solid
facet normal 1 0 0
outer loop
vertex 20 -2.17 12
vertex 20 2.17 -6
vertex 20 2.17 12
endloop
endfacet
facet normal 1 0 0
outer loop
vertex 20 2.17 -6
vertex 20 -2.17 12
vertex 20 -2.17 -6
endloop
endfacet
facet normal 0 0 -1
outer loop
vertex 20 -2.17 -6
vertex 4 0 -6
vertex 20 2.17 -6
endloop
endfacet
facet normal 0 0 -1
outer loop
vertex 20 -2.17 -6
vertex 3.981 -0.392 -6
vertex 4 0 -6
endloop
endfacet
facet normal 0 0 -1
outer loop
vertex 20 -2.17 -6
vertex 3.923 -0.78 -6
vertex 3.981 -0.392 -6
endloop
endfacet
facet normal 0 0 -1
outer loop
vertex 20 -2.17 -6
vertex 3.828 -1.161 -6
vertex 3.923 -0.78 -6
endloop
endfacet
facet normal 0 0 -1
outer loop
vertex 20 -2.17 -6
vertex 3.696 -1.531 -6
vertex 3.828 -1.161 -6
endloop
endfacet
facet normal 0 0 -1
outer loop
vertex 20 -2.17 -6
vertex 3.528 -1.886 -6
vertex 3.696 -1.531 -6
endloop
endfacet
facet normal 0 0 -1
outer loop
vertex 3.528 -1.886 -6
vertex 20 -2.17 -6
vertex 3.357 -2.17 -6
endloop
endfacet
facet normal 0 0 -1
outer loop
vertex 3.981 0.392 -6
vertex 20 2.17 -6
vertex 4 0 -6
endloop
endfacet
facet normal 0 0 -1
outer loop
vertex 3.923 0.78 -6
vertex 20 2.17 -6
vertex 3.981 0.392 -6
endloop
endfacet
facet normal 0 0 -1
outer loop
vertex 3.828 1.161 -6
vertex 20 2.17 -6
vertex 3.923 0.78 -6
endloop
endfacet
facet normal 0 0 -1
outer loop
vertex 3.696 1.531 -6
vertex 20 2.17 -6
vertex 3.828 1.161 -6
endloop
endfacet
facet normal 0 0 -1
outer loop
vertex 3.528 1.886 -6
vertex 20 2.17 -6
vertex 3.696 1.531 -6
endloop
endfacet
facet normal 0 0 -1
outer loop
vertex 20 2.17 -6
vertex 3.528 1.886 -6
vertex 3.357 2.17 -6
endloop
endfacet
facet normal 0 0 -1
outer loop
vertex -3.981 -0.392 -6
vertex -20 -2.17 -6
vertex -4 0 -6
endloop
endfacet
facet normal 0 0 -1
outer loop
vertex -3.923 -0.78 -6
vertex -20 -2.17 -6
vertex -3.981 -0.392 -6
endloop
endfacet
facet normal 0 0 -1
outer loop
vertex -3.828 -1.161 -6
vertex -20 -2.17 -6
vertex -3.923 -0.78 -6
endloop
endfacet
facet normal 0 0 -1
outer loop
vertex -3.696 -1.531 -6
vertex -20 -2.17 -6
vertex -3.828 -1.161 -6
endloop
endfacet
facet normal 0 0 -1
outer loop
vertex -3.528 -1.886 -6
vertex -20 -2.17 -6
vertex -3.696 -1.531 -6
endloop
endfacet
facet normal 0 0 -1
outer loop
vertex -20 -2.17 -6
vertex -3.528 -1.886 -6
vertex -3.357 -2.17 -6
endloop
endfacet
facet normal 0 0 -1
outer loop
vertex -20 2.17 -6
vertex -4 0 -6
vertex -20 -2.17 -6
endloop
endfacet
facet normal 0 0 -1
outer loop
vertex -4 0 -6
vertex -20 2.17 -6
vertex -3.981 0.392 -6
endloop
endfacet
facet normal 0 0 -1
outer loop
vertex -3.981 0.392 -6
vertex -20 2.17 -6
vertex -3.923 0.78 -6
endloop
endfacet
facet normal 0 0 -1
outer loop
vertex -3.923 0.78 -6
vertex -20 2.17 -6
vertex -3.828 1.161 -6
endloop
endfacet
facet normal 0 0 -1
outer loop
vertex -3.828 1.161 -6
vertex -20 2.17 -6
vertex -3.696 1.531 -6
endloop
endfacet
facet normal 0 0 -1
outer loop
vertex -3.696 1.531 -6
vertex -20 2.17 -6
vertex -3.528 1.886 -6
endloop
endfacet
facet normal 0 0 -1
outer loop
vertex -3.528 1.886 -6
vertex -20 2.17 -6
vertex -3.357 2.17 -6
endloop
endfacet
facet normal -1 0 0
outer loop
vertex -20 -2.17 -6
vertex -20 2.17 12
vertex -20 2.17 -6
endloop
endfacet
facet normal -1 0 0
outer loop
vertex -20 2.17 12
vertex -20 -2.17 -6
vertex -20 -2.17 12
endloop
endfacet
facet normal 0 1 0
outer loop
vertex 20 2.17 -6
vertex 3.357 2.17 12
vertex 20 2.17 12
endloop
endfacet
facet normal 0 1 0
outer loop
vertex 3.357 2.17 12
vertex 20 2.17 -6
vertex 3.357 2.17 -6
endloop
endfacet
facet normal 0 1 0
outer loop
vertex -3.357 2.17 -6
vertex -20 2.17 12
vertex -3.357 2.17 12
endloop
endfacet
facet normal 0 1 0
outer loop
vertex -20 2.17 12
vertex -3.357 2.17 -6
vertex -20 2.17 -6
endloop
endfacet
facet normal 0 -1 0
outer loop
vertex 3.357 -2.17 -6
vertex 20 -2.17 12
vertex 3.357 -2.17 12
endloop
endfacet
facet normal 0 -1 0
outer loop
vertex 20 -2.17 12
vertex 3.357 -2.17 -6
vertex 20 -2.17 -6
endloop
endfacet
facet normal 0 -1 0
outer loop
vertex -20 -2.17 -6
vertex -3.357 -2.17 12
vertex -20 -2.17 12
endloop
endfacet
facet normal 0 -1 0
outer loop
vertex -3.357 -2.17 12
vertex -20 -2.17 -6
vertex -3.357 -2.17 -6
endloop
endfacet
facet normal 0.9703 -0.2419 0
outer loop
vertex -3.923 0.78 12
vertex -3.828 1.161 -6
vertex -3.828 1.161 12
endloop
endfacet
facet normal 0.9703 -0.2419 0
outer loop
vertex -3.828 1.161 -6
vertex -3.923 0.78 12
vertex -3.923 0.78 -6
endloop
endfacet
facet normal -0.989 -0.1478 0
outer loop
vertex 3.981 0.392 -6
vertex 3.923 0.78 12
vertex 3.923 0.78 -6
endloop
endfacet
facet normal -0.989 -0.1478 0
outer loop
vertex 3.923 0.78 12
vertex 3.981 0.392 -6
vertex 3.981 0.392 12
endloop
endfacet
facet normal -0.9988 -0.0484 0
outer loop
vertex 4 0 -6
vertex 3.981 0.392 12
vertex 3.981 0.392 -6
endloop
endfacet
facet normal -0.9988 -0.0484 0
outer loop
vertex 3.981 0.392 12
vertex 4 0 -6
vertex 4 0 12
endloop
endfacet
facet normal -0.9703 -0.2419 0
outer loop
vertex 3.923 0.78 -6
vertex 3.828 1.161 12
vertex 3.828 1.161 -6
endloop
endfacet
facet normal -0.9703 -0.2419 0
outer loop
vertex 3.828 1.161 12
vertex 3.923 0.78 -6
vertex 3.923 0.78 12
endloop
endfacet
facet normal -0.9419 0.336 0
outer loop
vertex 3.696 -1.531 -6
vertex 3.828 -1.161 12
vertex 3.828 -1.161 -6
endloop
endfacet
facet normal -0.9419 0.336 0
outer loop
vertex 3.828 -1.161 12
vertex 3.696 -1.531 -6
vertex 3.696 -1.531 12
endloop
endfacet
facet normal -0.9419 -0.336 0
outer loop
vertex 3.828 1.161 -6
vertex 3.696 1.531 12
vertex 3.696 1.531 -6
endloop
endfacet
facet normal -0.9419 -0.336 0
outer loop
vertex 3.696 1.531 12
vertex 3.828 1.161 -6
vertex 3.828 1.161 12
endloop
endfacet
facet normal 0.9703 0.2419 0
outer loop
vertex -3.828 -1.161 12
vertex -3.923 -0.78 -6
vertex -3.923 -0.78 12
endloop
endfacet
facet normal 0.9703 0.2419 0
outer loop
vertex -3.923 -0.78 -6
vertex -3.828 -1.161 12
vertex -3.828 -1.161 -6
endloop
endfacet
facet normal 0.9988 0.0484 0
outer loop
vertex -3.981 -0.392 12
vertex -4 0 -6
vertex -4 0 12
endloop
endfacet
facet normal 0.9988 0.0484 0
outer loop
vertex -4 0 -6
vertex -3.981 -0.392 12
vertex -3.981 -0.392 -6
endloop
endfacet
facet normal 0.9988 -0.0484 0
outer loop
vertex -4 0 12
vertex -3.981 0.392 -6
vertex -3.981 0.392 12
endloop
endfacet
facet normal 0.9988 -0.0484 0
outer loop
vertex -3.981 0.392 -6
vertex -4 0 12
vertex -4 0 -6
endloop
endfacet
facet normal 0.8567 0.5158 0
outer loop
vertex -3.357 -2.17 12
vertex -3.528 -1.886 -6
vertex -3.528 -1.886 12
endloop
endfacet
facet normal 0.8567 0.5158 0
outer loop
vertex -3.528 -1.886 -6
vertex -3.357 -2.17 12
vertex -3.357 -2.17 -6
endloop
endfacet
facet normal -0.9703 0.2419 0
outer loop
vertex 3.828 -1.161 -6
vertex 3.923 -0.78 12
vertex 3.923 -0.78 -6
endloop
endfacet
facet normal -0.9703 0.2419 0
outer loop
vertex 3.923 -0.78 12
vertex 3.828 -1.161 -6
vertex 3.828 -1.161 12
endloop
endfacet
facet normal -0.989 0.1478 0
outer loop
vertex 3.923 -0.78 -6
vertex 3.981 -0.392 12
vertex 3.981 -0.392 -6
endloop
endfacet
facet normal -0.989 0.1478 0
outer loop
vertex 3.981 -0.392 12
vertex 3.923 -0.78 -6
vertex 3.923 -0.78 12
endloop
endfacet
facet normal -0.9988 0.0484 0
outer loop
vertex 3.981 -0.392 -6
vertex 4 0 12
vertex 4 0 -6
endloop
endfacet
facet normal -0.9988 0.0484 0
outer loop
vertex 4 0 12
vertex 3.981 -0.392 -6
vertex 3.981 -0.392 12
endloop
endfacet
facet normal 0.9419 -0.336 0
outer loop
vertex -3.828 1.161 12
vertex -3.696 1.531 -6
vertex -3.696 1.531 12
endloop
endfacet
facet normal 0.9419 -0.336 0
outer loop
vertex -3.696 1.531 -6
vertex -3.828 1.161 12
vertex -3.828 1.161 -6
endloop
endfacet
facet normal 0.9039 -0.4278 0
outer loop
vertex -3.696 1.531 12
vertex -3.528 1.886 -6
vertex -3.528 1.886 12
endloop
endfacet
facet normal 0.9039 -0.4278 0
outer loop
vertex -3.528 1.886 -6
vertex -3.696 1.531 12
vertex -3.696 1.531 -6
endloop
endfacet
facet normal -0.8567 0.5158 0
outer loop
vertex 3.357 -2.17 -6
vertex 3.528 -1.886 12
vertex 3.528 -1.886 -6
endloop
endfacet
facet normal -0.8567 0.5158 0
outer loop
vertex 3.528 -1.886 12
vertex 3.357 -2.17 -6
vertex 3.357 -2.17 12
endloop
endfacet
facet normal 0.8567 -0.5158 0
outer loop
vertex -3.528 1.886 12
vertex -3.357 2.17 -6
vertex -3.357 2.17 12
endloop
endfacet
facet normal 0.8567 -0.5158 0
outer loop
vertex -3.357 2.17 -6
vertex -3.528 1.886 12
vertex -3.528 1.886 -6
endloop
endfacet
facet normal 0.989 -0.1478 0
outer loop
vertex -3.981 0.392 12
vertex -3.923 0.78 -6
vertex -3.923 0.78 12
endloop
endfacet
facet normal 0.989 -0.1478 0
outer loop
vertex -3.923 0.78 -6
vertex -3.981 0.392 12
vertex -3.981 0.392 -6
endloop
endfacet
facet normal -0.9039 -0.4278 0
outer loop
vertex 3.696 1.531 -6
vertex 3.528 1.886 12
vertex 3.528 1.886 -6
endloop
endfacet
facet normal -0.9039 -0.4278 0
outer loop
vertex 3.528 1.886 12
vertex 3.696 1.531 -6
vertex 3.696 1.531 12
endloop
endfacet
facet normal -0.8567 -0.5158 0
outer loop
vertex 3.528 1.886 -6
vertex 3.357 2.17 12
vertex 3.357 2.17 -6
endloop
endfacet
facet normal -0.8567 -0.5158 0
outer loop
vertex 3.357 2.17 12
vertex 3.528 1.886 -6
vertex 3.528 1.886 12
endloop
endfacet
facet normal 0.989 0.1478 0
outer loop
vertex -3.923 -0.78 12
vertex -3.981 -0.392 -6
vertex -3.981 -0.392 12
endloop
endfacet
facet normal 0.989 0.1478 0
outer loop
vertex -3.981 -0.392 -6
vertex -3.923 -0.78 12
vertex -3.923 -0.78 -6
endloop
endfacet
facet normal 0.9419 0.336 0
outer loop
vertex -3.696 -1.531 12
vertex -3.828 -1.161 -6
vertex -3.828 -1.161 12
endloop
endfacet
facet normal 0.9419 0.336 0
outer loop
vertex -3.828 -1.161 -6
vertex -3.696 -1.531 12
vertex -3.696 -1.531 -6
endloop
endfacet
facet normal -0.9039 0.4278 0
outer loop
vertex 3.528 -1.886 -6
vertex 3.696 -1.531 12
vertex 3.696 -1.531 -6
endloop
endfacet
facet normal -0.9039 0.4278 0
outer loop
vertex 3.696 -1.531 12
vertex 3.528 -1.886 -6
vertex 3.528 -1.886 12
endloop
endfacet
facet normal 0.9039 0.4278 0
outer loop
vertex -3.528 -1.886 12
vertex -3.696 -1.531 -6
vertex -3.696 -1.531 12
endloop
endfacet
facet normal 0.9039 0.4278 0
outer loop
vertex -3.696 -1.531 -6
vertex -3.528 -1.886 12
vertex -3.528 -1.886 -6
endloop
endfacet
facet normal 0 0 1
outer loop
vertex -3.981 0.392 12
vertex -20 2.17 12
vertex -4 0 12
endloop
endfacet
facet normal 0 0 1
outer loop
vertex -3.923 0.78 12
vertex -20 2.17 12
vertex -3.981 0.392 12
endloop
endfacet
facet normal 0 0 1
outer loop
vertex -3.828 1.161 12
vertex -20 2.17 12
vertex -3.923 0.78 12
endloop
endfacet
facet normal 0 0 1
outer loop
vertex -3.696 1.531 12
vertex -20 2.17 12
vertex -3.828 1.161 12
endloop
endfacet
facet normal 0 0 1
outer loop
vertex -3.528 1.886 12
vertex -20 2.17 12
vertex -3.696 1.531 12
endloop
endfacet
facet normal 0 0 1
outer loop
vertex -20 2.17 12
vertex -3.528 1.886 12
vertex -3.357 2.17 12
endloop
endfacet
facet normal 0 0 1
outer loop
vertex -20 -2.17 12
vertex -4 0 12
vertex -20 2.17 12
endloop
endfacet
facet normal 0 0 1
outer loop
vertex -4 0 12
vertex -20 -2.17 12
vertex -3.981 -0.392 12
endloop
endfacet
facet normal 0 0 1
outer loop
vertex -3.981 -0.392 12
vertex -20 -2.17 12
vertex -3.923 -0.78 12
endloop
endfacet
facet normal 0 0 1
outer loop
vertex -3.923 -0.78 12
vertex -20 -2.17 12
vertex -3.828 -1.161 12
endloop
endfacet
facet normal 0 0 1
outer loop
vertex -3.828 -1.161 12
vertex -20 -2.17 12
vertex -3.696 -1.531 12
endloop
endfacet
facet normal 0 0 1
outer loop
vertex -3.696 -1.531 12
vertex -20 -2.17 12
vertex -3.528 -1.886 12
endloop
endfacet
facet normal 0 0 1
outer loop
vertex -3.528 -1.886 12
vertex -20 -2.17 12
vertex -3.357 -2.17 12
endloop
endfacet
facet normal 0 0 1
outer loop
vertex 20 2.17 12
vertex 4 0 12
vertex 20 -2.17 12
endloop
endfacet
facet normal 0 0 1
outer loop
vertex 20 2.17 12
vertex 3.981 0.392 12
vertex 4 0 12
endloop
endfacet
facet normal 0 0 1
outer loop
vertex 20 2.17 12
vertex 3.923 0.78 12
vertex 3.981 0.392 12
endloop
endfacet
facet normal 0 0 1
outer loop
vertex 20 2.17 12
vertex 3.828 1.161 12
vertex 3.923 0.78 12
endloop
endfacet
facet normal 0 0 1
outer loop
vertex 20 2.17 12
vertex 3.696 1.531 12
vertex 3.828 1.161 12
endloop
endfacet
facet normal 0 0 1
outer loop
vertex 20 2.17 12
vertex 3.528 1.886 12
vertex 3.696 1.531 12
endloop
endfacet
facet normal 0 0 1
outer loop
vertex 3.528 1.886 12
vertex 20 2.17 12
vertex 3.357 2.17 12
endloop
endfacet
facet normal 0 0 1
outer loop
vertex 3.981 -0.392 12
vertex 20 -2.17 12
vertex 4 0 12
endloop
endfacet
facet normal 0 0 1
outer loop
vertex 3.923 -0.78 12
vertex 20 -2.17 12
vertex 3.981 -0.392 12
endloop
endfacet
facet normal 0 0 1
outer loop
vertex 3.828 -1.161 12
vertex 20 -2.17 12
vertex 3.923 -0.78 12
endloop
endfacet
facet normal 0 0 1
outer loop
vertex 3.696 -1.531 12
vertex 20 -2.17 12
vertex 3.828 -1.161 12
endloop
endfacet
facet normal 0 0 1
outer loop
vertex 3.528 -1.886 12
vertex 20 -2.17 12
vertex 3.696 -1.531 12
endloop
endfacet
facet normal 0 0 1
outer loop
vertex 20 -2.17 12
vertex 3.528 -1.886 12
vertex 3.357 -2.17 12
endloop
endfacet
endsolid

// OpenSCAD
/* doodle-meta {"version":1,"parameters":{"width":{"label":"Overall width","description":"Changes the body width","unit":"mm","feature":"body_width"},"depth":{"label":"Overall depth","description":"Changes the body depth","unit":"mm","feature":"body_depth"},"height":{"label":"Overall height","description":"Changes the body height","unit":"mm","feature":"body_height"},"hole_diameter":{"label":"Hole diameter","description":"Changes the diameter of the central through-hole","unit":"mm","feature":"central_hole"}},"features":{"body_width":{"kind":"dimension","axis":"x","label":"Overall width"},"body_depth":{"kind":"dimension","axis":"y","label":"Overall depth"},"body_height":{"kind":"dimension","axis":"z","label":"Overall height"},"central_hole":{"kind":"region","label":"Central through-hole","min":[{"parameter":"width","scale":0.5,"offset":-4.0},{"parameter":"depth","scale":0.5,"offset":-4.0},0],"max":[{"parameter":"width","scale":0.5,"offset":4.0},{"parameter":"depth","scale":0.5,"offset":4.0},{"parameter":"height","scale":1.0,"offset":0}]}}} */

// Top-level parameters (user-editable)
width = 40.0;
depth = 4.34;
height = 12.0;
hole_diameter = 8.0;

// Implementation constants (not user-editable)
$fn = 64;
eps = 0.01;

// Main design
difference() {
    // Base block
    cube([width, depth, height], center=true);
    
    // Central through-hole (axis along Z)
    translate([0, 0, 0])
        cylinder(d=hole_diameter, h=height + 2*eps, center=true);
}

// Shift to sit on build plate (Z=0)
translate([0, 0, height/2])
    difference() {
        // Base block
        cube([width, depth, height], center=true);
        
        // Central through-hole (axis along Z)
        translate([0, 0, 0])
            cylinder(d=hole_diameter, h=height + 2*eps, center=true);
    }
